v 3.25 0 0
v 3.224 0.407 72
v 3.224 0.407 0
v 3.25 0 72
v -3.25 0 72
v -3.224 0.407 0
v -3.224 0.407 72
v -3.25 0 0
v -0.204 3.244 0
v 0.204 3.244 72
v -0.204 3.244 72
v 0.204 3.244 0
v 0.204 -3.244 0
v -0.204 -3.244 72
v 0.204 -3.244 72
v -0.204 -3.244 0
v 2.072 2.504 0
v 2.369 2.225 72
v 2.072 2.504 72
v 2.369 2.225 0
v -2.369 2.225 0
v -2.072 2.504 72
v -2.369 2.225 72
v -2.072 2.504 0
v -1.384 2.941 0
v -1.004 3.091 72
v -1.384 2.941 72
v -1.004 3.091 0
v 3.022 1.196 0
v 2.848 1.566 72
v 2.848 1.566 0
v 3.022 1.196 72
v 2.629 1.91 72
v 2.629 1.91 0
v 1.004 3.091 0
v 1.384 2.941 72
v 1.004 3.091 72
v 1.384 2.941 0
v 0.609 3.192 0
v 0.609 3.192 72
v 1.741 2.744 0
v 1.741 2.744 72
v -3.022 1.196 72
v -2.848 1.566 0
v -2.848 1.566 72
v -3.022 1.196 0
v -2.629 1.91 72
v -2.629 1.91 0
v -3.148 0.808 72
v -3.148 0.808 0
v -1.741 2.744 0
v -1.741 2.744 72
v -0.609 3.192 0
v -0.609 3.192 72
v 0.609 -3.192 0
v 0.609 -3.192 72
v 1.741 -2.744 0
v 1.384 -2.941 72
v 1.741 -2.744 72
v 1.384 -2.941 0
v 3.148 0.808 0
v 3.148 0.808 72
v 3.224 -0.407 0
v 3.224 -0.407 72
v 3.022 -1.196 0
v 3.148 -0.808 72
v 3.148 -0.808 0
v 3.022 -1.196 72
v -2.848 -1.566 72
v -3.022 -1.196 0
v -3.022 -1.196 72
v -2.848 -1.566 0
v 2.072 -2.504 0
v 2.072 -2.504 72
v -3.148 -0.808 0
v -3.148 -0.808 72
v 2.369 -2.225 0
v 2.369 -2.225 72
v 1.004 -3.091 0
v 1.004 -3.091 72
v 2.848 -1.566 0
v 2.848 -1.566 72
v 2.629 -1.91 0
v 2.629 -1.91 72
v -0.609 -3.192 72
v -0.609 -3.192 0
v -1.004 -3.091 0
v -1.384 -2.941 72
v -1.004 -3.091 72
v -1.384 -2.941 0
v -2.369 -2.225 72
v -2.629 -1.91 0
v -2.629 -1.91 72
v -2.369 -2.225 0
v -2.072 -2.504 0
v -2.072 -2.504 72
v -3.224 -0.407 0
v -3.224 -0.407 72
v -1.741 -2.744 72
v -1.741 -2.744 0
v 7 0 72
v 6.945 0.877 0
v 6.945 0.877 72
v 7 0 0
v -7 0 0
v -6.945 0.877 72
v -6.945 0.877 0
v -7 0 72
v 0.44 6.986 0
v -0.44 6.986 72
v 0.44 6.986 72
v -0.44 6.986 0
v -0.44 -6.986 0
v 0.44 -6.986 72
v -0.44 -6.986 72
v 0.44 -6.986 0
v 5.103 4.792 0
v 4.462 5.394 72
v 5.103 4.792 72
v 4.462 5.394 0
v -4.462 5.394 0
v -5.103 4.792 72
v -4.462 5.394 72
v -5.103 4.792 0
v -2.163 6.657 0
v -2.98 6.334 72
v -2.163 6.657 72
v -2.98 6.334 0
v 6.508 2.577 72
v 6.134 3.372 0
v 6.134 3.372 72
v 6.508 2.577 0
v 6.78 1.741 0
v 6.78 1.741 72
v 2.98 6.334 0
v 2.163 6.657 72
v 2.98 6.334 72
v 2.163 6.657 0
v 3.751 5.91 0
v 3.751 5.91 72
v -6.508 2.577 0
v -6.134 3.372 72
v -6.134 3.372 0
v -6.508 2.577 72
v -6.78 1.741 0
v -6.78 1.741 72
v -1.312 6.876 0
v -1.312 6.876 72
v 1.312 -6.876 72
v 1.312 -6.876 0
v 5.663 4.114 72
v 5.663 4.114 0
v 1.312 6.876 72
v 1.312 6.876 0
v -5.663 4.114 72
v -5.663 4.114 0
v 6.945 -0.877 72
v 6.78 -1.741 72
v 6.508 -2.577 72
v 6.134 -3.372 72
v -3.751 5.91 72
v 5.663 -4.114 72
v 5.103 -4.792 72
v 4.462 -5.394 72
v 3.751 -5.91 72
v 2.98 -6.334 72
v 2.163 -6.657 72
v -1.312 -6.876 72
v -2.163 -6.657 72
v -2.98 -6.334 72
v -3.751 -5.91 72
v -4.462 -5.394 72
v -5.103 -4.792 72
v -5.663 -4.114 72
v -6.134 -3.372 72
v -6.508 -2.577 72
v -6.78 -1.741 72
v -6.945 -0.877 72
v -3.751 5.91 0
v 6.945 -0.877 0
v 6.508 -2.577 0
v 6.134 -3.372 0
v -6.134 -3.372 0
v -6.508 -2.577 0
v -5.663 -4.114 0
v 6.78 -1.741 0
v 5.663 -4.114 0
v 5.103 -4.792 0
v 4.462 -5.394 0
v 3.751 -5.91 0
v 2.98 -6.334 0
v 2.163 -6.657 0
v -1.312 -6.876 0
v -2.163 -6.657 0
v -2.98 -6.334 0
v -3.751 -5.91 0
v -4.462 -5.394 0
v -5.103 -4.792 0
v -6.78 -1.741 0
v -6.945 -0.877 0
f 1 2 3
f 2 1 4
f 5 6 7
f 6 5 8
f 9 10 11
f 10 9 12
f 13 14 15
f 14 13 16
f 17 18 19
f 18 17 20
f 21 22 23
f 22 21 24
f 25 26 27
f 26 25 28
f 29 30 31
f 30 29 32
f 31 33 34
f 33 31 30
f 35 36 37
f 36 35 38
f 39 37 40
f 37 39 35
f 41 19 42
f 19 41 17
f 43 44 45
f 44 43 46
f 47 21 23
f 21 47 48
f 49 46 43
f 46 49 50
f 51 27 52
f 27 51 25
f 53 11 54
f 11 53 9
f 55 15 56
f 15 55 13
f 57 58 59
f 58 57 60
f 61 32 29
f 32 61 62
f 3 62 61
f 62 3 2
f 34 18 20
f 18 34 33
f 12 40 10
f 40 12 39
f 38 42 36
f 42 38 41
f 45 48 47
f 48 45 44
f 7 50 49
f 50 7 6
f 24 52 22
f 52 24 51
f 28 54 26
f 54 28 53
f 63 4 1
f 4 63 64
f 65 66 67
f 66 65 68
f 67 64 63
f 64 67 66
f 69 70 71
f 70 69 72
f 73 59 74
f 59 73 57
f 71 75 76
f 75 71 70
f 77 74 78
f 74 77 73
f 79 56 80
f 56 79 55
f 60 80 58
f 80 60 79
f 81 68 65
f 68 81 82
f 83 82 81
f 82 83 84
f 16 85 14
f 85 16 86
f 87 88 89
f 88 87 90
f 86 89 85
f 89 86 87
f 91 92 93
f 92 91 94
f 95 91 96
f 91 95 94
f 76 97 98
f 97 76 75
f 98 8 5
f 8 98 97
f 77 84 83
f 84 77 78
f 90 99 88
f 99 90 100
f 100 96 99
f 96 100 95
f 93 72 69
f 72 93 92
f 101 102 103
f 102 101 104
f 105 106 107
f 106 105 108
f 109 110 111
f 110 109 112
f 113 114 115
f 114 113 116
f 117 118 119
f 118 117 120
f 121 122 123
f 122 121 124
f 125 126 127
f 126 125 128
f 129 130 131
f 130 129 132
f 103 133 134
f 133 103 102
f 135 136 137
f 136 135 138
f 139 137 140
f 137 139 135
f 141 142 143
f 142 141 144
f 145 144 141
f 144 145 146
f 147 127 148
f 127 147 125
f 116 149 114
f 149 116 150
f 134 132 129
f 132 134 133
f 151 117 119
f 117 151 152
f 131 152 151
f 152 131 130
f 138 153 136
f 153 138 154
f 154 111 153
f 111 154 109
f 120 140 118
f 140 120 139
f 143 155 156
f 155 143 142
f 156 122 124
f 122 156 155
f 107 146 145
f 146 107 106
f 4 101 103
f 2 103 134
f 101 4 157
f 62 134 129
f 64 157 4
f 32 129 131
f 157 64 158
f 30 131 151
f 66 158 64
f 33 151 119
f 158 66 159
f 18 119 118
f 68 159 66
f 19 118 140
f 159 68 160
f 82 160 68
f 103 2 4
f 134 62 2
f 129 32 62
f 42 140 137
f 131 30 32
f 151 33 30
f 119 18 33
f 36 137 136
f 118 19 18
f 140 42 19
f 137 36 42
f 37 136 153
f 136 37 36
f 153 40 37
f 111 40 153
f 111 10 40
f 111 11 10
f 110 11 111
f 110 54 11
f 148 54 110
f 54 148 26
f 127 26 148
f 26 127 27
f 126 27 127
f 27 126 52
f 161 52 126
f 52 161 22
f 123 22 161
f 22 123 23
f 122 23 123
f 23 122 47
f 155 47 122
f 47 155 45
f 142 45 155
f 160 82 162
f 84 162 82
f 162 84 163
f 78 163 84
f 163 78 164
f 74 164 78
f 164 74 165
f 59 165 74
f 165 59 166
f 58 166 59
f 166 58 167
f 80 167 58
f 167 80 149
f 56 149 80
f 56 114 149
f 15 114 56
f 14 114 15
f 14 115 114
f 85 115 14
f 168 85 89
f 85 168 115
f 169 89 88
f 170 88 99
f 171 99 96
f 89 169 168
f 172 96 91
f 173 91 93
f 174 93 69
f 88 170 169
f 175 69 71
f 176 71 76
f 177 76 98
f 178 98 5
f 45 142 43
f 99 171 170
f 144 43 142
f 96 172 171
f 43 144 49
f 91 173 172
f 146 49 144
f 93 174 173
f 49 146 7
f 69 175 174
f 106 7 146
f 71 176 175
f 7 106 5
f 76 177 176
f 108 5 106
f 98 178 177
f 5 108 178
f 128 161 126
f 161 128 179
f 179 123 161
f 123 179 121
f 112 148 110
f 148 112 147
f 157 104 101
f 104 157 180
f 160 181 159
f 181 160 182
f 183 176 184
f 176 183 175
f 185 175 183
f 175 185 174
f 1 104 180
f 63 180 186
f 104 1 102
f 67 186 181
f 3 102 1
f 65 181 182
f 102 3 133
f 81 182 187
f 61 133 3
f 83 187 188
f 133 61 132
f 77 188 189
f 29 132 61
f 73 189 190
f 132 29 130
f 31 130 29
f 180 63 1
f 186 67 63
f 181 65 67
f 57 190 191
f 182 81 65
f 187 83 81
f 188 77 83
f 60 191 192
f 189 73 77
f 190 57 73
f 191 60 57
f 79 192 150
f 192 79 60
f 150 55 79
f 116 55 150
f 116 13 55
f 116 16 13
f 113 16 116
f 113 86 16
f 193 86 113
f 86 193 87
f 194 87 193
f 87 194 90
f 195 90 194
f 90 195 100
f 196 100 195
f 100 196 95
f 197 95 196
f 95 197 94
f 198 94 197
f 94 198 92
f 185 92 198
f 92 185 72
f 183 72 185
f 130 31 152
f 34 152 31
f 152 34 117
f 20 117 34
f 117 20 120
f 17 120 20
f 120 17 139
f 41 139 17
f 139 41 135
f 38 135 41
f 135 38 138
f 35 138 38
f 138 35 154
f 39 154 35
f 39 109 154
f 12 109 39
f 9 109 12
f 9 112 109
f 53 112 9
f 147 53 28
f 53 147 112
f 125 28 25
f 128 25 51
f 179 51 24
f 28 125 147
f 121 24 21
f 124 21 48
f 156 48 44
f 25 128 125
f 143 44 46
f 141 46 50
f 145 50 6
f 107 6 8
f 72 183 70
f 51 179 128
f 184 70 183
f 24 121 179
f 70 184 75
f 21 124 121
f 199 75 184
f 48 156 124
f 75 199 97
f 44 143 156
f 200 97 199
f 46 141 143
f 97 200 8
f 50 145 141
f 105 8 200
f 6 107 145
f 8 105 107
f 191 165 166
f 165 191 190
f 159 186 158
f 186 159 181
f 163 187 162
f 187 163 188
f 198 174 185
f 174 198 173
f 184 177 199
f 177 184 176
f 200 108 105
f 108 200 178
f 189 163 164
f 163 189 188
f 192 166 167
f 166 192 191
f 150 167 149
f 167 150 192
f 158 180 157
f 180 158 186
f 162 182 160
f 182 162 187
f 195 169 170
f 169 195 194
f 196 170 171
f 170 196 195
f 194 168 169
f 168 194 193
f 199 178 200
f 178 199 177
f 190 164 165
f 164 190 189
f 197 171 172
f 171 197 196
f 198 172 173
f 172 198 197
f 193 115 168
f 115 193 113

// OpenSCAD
$fn = 50;


difference() {
	union() {
		cylinder(h = 72, r = 7.0000000000);
	}
	union() {
		cylinder(h = 72, r = 3.2500000000);
		cylinder(h = 72, r = 1.8000000000);
		cylinder(h = 72, r = 1.8000000000);
		cylinder(h = 72, r = 1.8000000000);
	}
}
